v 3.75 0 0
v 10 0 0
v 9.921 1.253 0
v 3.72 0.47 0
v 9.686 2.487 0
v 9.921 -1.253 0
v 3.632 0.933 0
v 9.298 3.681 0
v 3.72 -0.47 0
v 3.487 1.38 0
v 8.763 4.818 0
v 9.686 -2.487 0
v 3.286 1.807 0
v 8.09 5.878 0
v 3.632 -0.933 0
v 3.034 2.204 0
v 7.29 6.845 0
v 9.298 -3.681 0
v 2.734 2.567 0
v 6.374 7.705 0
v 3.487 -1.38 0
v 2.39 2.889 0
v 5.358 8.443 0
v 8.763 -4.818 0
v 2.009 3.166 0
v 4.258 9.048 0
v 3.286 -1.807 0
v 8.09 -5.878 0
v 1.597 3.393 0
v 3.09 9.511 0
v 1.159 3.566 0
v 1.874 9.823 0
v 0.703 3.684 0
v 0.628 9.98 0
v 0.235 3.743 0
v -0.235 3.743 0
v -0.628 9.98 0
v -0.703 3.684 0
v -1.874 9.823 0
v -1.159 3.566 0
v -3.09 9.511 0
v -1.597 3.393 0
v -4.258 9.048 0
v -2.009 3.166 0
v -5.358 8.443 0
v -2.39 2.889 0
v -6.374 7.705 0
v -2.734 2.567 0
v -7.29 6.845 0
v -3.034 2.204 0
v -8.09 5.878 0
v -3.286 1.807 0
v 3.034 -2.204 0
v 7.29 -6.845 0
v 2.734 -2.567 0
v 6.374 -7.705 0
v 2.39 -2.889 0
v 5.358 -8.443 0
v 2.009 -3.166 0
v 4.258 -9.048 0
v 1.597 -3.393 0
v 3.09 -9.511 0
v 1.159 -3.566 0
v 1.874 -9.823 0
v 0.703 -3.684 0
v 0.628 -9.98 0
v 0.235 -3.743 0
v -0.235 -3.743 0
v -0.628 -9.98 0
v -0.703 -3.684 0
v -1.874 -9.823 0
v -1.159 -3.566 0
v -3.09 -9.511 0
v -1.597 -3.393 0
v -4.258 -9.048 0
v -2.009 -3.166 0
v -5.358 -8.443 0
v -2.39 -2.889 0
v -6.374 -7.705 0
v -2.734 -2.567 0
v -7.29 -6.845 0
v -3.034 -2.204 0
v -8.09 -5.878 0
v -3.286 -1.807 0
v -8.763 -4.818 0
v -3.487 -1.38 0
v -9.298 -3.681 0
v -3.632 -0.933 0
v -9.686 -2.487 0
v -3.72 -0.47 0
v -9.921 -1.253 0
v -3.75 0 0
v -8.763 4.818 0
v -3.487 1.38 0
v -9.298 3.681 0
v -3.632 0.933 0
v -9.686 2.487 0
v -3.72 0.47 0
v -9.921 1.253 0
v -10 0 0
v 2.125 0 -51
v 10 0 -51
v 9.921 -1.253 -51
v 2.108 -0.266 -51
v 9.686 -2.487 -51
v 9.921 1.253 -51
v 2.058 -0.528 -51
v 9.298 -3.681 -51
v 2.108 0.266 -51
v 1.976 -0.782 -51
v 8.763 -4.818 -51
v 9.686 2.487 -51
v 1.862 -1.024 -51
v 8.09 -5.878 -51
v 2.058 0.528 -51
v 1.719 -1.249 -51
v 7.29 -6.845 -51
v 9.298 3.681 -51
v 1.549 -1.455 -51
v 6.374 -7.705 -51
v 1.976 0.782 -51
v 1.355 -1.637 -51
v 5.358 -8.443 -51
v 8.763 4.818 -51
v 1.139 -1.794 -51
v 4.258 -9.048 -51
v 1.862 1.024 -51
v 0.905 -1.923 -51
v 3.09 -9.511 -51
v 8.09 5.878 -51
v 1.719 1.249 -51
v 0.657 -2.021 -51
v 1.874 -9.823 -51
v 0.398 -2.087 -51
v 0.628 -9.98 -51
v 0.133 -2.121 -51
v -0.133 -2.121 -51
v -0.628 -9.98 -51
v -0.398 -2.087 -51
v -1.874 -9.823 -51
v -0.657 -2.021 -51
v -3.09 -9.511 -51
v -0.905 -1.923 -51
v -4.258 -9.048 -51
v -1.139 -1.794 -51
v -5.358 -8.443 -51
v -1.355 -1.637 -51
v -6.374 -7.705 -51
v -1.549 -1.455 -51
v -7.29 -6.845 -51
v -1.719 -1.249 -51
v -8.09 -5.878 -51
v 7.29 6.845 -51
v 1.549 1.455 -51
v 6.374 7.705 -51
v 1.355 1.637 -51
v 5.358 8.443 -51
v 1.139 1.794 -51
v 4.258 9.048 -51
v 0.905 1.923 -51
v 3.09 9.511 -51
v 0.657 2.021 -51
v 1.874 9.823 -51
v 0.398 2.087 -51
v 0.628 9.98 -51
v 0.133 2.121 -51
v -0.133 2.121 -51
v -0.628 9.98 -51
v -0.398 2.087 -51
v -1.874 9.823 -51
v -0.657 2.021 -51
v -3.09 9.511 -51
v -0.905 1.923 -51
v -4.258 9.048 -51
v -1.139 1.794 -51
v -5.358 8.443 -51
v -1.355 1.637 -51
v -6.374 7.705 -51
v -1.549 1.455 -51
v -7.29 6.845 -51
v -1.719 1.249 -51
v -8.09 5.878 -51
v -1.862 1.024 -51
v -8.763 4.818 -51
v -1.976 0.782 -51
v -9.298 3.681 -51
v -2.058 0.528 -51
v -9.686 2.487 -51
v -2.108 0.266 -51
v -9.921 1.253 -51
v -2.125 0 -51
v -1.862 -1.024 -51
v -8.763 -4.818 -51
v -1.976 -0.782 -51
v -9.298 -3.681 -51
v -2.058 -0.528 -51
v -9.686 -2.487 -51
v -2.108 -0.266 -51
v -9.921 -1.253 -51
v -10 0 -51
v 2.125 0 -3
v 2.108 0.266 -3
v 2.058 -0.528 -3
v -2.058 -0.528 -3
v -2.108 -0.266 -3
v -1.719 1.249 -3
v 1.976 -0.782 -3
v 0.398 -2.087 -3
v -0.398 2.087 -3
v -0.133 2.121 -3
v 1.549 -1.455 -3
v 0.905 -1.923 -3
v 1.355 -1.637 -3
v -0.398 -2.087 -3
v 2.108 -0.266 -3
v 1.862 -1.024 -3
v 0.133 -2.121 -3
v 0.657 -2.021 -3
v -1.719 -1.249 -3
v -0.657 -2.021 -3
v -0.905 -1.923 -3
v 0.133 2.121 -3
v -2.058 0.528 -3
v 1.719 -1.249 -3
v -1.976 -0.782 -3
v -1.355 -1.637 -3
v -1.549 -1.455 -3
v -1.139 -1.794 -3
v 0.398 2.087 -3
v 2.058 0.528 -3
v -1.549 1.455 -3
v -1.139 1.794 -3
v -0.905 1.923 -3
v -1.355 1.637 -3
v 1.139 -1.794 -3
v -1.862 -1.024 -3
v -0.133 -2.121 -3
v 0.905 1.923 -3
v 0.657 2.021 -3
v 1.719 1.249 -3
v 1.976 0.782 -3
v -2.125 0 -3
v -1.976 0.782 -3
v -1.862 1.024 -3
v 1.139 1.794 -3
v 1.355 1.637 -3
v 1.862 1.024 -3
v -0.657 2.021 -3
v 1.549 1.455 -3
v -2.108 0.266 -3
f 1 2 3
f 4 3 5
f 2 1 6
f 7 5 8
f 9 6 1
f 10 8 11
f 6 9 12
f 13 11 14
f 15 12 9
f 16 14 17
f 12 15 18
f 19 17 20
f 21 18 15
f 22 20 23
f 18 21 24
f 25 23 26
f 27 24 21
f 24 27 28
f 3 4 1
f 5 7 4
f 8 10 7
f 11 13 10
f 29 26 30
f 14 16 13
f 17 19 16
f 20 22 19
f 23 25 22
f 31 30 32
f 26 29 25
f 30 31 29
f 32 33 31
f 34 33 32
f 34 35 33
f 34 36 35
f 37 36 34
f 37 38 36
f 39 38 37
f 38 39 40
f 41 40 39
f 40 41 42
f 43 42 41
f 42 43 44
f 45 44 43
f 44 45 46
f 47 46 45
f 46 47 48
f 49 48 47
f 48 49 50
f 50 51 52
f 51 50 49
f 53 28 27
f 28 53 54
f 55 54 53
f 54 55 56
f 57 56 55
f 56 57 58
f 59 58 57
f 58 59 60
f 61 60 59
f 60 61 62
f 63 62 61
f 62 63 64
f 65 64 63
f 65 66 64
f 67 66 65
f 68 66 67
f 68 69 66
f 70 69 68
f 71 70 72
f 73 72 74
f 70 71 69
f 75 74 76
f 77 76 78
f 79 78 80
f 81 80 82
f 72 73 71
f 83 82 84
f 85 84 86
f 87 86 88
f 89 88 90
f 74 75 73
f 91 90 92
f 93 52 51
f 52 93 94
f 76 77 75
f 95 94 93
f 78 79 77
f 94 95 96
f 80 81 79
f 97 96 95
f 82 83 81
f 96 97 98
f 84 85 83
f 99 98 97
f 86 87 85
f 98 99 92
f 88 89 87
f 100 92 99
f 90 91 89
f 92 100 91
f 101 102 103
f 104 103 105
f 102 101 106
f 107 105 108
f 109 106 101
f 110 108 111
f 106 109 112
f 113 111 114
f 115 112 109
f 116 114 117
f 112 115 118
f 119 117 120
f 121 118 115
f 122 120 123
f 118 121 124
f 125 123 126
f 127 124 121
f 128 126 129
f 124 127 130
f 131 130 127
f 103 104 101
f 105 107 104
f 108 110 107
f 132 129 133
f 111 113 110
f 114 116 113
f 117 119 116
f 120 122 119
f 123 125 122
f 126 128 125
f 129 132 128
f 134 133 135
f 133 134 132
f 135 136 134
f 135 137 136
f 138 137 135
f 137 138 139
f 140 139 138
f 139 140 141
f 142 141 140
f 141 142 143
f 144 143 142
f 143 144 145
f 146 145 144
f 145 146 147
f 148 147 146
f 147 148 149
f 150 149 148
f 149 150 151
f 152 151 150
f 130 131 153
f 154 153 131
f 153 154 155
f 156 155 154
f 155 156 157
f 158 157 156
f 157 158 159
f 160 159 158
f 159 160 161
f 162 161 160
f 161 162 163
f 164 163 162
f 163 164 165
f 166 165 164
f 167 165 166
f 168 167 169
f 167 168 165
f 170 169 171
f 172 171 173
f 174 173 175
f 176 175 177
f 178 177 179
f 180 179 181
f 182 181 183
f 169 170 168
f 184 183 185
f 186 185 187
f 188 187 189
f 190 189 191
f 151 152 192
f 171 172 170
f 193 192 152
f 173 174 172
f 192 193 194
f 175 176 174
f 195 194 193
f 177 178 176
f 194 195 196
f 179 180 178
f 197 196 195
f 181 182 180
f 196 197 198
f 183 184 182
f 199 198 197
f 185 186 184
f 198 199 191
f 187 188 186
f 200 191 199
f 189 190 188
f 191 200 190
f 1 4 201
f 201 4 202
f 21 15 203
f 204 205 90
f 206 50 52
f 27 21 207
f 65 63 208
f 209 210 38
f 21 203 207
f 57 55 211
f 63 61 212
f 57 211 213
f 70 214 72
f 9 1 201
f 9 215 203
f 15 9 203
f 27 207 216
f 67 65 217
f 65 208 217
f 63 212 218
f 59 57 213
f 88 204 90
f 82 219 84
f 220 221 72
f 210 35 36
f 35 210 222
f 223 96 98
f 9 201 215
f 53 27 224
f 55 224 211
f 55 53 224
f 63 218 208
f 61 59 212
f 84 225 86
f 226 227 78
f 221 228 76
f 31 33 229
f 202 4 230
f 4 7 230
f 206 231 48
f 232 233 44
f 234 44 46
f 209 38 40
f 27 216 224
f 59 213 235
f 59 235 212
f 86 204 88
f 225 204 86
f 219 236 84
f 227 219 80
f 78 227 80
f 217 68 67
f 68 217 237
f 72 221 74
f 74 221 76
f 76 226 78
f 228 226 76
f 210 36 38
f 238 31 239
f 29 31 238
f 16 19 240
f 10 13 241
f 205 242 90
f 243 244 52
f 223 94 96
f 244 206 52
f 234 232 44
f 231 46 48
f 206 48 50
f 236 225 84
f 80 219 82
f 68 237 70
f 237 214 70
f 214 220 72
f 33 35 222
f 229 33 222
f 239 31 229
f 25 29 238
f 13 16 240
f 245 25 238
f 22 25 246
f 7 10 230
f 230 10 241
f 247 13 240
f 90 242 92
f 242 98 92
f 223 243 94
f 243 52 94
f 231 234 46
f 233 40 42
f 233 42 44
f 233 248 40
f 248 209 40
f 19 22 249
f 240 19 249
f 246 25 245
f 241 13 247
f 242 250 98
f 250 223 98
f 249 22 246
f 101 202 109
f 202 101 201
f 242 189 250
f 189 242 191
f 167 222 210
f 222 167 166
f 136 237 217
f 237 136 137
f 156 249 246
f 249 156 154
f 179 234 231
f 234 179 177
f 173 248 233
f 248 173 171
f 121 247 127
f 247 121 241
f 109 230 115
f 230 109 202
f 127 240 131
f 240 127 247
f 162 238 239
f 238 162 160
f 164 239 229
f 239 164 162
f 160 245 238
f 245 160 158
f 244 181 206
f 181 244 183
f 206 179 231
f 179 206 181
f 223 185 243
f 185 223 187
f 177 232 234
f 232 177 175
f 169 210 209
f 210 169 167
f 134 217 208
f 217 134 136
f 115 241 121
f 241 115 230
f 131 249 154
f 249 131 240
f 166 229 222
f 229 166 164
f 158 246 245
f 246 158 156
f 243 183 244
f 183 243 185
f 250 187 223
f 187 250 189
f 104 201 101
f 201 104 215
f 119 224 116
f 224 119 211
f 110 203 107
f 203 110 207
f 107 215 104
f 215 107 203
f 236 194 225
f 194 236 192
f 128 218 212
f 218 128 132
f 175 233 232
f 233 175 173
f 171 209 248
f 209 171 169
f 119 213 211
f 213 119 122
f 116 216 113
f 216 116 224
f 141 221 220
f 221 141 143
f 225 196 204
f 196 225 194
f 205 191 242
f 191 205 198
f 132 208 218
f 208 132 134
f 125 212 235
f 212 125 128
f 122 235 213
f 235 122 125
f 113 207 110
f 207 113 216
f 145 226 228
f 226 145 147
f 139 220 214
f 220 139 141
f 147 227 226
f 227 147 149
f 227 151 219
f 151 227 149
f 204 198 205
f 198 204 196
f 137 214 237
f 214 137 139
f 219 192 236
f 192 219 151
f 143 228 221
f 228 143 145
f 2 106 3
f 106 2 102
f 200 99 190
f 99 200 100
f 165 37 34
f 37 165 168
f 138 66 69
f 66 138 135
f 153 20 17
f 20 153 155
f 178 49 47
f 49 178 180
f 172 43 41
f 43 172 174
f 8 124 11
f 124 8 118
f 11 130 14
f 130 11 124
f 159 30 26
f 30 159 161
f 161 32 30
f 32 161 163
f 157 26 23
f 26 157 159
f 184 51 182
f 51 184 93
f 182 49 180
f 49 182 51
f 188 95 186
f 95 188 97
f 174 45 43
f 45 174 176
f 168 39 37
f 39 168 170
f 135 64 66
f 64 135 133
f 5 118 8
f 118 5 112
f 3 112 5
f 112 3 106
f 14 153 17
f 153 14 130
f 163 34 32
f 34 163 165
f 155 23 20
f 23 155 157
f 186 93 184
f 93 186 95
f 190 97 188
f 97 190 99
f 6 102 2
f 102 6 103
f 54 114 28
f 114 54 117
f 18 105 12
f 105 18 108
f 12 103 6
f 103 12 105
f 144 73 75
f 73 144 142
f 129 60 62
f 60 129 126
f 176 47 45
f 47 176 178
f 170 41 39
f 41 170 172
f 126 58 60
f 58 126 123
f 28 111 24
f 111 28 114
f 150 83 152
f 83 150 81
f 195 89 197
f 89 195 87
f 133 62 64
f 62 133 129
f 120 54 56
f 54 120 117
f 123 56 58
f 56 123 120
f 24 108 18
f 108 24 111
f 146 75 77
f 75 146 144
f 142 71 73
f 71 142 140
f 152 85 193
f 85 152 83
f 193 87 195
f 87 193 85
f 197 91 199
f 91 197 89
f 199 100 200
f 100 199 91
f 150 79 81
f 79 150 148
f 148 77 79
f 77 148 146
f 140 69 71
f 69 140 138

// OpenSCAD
$fn = 50;


difference() {
	union() {
		translate(v = [0, 0, -51.0000000000]) {
			cylinder(h = 51, r = 10.0000000000);
		}
		cylinder(h = 0, r = 19.0000000000);
	}
	union() {
		translate(v = [0, 0, 0]) {
			rotate(a = [0, 0, 0]) {
				difference() {
					union() {
						#translate(v = [0, 0, -51.0000000000]) {
							cylinder(h = 51, r = 2.0000000000);
						}
						#translate(v = [0, 0, -3]) {
							cylinder(h = 3, r1 = 2.1250000000, r2 = 3.7500000000);
						}
						#translate(v = [0, 0, -51.0000000000]) {
							cylinder(h = 51, r = 2.1250000000);
						}
						#translate(v = [0, 0, -51.0000000000]) {
							cylinder(h = 51, r = 2.0000000000);
						}
					}
					union();
				}
			}
		}
	}
}
